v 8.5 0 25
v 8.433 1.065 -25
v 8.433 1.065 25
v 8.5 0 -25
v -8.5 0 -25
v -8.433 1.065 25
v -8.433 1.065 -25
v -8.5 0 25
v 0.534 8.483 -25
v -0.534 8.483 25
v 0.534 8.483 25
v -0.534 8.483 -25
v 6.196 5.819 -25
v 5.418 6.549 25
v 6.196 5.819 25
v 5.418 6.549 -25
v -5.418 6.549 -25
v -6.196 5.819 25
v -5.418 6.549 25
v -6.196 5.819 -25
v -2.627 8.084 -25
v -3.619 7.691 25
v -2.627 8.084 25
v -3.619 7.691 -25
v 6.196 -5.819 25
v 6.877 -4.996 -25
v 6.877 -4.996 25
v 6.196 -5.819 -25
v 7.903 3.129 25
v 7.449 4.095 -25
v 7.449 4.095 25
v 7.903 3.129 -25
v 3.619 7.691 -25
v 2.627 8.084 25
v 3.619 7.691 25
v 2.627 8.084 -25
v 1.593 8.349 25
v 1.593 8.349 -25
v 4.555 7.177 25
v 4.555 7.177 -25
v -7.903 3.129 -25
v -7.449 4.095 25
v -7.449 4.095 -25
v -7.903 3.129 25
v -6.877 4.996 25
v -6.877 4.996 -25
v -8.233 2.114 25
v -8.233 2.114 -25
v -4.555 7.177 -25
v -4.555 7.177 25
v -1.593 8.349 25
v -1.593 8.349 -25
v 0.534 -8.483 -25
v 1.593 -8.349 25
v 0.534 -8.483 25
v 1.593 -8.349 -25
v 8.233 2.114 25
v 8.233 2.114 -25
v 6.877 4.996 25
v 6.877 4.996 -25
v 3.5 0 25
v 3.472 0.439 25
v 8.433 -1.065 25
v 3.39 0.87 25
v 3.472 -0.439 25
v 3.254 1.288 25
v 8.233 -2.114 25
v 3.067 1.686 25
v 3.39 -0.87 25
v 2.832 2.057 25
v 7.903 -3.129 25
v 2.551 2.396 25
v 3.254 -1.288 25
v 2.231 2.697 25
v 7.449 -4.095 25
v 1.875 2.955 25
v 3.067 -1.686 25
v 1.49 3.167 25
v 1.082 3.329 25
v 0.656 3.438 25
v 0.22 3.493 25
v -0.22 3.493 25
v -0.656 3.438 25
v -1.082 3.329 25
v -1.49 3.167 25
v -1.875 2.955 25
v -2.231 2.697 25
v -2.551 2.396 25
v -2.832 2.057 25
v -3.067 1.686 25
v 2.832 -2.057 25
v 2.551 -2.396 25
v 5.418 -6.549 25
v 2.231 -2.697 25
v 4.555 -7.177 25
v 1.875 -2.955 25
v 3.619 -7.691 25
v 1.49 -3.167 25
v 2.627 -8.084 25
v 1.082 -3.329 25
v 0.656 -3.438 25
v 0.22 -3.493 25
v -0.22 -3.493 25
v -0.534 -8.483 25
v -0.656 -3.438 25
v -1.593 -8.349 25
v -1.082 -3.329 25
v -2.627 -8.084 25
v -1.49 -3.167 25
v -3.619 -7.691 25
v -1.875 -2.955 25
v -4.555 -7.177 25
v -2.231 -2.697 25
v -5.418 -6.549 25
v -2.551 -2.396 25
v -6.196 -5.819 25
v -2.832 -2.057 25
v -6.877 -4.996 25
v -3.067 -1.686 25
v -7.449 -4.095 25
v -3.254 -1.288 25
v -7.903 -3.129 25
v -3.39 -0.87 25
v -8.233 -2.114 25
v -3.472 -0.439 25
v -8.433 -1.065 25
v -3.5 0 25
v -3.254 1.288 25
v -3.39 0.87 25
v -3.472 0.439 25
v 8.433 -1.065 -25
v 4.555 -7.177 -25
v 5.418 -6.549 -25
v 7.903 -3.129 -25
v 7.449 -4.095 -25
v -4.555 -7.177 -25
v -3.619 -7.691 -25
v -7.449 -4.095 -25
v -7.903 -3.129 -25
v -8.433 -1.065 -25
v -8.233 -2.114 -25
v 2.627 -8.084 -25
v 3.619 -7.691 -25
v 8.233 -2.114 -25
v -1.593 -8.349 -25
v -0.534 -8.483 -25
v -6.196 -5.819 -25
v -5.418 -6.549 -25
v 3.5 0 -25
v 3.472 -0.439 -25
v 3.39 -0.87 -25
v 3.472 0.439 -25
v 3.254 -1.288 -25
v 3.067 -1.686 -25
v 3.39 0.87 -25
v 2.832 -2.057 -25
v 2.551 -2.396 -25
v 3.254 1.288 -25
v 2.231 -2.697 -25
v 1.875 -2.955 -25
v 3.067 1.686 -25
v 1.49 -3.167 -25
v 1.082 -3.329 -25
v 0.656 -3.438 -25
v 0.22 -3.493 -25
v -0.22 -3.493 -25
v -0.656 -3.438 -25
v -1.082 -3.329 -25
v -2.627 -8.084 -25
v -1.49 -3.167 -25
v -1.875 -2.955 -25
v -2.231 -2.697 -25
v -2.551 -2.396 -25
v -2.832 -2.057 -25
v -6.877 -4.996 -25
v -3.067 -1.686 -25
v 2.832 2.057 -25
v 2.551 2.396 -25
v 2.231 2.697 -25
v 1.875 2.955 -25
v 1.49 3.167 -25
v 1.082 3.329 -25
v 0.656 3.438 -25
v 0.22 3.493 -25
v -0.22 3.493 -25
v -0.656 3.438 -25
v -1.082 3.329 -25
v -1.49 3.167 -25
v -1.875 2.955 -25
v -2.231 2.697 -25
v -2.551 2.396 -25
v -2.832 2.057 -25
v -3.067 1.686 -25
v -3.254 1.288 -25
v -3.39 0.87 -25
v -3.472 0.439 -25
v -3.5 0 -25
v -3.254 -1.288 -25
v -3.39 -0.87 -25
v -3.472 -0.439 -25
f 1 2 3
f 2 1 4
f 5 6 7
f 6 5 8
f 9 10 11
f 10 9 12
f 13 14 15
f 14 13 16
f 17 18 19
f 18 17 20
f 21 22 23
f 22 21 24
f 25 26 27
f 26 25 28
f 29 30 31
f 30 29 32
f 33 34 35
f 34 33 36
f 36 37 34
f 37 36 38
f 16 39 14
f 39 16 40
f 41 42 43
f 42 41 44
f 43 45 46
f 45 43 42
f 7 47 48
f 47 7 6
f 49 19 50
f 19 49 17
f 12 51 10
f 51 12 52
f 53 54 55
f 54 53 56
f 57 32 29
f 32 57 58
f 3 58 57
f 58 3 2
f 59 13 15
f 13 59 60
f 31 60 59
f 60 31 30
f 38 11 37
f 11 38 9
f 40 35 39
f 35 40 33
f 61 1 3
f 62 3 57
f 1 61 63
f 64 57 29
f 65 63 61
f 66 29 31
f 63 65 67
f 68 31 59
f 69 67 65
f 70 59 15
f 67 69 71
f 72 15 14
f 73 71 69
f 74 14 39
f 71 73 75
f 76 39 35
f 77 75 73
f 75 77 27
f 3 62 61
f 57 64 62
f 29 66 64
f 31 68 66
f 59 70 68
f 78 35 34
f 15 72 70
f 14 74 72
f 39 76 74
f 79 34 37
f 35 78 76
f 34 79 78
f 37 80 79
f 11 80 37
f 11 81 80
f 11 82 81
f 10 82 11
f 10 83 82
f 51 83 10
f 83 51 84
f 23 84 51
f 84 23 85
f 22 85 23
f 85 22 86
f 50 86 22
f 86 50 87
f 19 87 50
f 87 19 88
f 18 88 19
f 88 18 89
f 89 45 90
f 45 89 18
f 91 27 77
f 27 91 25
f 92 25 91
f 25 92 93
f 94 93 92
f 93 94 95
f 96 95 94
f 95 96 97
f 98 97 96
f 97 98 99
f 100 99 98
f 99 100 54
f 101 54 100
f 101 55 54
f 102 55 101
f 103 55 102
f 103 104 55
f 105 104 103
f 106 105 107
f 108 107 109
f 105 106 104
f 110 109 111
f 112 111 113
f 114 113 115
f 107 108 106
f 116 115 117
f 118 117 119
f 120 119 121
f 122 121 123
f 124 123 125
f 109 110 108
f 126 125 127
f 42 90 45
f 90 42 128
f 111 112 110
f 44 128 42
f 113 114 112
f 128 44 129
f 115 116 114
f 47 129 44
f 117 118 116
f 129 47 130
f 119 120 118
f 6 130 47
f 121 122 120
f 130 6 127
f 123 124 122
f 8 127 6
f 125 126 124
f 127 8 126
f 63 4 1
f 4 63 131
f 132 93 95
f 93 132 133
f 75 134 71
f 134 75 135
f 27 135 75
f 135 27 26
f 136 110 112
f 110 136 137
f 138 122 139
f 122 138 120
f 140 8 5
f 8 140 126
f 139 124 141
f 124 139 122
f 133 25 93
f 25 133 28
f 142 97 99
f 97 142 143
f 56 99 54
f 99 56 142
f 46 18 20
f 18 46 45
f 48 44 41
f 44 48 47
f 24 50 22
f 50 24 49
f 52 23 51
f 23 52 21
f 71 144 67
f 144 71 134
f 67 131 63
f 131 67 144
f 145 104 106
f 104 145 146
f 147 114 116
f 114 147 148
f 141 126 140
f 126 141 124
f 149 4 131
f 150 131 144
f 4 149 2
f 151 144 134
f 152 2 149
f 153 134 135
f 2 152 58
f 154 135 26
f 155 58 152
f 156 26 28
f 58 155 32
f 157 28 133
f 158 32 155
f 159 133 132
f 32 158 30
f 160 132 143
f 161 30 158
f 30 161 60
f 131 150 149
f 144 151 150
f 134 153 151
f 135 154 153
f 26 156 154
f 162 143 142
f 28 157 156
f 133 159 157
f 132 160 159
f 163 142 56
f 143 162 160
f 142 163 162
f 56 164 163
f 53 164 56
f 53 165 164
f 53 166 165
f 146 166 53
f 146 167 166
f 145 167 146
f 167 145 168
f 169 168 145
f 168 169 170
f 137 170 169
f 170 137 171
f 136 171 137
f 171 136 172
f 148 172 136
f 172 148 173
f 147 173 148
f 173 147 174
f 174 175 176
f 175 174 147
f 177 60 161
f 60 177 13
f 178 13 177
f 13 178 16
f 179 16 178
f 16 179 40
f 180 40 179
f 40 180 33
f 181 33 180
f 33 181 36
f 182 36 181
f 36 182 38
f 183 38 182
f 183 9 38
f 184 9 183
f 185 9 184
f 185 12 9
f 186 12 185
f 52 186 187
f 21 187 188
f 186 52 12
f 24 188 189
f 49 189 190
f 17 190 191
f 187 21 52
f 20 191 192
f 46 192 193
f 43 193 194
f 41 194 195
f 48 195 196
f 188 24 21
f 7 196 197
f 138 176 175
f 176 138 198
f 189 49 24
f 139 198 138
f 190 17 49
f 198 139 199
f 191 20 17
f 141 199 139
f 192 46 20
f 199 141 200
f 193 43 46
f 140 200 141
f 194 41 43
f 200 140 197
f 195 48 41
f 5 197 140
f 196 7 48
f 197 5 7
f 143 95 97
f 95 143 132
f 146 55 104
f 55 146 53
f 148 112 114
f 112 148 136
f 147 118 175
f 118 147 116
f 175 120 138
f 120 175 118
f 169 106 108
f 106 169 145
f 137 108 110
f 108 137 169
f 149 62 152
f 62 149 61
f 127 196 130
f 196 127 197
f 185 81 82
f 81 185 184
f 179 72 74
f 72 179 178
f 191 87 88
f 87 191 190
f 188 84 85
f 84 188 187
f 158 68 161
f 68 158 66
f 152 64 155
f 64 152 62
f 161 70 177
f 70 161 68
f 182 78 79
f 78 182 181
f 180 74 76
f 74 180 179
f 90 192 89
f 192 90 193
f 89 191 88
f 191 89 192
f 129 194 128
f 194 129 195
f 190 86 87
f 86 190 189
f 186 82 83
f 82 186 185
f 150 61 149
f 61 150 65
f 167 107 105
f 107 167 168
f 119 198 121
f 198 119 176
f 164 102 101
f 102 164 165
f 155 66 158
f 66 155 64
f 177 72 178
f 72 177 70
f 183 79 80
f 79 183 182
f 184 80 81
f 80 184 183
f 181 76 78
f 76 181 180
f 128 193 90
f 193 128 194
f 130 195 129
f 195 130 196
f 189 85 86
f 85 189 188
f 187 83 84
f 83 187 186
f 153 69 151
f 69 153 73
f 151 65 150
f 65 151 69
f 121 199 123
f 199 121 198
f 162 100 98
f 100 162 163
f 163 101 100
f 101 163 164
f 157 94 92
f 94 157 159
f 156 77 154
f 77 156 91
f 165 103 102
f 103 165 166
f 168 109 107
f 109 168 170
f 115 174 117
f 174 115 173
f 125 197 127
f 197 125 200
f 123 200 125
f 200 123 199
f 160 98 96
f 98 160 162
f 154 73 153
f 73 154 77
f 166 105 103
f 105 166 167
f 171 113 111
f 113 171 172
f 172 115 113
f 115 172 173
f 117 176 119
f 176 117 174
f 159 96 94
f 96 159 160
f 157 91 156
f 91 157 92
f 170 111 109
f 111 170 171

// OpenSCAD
$fn = 50;


difference() {
	union() {
		translate(v = [0, 0, -25.0000000000]) {
			cylinder(h = 50, r = 8.5000000000);
		}
	}
	union() {
		translate(v = [0, 0, -100.0000000000]) {
			cylinder(h = 200, r = 3.5000000000);
		}
	}
}
